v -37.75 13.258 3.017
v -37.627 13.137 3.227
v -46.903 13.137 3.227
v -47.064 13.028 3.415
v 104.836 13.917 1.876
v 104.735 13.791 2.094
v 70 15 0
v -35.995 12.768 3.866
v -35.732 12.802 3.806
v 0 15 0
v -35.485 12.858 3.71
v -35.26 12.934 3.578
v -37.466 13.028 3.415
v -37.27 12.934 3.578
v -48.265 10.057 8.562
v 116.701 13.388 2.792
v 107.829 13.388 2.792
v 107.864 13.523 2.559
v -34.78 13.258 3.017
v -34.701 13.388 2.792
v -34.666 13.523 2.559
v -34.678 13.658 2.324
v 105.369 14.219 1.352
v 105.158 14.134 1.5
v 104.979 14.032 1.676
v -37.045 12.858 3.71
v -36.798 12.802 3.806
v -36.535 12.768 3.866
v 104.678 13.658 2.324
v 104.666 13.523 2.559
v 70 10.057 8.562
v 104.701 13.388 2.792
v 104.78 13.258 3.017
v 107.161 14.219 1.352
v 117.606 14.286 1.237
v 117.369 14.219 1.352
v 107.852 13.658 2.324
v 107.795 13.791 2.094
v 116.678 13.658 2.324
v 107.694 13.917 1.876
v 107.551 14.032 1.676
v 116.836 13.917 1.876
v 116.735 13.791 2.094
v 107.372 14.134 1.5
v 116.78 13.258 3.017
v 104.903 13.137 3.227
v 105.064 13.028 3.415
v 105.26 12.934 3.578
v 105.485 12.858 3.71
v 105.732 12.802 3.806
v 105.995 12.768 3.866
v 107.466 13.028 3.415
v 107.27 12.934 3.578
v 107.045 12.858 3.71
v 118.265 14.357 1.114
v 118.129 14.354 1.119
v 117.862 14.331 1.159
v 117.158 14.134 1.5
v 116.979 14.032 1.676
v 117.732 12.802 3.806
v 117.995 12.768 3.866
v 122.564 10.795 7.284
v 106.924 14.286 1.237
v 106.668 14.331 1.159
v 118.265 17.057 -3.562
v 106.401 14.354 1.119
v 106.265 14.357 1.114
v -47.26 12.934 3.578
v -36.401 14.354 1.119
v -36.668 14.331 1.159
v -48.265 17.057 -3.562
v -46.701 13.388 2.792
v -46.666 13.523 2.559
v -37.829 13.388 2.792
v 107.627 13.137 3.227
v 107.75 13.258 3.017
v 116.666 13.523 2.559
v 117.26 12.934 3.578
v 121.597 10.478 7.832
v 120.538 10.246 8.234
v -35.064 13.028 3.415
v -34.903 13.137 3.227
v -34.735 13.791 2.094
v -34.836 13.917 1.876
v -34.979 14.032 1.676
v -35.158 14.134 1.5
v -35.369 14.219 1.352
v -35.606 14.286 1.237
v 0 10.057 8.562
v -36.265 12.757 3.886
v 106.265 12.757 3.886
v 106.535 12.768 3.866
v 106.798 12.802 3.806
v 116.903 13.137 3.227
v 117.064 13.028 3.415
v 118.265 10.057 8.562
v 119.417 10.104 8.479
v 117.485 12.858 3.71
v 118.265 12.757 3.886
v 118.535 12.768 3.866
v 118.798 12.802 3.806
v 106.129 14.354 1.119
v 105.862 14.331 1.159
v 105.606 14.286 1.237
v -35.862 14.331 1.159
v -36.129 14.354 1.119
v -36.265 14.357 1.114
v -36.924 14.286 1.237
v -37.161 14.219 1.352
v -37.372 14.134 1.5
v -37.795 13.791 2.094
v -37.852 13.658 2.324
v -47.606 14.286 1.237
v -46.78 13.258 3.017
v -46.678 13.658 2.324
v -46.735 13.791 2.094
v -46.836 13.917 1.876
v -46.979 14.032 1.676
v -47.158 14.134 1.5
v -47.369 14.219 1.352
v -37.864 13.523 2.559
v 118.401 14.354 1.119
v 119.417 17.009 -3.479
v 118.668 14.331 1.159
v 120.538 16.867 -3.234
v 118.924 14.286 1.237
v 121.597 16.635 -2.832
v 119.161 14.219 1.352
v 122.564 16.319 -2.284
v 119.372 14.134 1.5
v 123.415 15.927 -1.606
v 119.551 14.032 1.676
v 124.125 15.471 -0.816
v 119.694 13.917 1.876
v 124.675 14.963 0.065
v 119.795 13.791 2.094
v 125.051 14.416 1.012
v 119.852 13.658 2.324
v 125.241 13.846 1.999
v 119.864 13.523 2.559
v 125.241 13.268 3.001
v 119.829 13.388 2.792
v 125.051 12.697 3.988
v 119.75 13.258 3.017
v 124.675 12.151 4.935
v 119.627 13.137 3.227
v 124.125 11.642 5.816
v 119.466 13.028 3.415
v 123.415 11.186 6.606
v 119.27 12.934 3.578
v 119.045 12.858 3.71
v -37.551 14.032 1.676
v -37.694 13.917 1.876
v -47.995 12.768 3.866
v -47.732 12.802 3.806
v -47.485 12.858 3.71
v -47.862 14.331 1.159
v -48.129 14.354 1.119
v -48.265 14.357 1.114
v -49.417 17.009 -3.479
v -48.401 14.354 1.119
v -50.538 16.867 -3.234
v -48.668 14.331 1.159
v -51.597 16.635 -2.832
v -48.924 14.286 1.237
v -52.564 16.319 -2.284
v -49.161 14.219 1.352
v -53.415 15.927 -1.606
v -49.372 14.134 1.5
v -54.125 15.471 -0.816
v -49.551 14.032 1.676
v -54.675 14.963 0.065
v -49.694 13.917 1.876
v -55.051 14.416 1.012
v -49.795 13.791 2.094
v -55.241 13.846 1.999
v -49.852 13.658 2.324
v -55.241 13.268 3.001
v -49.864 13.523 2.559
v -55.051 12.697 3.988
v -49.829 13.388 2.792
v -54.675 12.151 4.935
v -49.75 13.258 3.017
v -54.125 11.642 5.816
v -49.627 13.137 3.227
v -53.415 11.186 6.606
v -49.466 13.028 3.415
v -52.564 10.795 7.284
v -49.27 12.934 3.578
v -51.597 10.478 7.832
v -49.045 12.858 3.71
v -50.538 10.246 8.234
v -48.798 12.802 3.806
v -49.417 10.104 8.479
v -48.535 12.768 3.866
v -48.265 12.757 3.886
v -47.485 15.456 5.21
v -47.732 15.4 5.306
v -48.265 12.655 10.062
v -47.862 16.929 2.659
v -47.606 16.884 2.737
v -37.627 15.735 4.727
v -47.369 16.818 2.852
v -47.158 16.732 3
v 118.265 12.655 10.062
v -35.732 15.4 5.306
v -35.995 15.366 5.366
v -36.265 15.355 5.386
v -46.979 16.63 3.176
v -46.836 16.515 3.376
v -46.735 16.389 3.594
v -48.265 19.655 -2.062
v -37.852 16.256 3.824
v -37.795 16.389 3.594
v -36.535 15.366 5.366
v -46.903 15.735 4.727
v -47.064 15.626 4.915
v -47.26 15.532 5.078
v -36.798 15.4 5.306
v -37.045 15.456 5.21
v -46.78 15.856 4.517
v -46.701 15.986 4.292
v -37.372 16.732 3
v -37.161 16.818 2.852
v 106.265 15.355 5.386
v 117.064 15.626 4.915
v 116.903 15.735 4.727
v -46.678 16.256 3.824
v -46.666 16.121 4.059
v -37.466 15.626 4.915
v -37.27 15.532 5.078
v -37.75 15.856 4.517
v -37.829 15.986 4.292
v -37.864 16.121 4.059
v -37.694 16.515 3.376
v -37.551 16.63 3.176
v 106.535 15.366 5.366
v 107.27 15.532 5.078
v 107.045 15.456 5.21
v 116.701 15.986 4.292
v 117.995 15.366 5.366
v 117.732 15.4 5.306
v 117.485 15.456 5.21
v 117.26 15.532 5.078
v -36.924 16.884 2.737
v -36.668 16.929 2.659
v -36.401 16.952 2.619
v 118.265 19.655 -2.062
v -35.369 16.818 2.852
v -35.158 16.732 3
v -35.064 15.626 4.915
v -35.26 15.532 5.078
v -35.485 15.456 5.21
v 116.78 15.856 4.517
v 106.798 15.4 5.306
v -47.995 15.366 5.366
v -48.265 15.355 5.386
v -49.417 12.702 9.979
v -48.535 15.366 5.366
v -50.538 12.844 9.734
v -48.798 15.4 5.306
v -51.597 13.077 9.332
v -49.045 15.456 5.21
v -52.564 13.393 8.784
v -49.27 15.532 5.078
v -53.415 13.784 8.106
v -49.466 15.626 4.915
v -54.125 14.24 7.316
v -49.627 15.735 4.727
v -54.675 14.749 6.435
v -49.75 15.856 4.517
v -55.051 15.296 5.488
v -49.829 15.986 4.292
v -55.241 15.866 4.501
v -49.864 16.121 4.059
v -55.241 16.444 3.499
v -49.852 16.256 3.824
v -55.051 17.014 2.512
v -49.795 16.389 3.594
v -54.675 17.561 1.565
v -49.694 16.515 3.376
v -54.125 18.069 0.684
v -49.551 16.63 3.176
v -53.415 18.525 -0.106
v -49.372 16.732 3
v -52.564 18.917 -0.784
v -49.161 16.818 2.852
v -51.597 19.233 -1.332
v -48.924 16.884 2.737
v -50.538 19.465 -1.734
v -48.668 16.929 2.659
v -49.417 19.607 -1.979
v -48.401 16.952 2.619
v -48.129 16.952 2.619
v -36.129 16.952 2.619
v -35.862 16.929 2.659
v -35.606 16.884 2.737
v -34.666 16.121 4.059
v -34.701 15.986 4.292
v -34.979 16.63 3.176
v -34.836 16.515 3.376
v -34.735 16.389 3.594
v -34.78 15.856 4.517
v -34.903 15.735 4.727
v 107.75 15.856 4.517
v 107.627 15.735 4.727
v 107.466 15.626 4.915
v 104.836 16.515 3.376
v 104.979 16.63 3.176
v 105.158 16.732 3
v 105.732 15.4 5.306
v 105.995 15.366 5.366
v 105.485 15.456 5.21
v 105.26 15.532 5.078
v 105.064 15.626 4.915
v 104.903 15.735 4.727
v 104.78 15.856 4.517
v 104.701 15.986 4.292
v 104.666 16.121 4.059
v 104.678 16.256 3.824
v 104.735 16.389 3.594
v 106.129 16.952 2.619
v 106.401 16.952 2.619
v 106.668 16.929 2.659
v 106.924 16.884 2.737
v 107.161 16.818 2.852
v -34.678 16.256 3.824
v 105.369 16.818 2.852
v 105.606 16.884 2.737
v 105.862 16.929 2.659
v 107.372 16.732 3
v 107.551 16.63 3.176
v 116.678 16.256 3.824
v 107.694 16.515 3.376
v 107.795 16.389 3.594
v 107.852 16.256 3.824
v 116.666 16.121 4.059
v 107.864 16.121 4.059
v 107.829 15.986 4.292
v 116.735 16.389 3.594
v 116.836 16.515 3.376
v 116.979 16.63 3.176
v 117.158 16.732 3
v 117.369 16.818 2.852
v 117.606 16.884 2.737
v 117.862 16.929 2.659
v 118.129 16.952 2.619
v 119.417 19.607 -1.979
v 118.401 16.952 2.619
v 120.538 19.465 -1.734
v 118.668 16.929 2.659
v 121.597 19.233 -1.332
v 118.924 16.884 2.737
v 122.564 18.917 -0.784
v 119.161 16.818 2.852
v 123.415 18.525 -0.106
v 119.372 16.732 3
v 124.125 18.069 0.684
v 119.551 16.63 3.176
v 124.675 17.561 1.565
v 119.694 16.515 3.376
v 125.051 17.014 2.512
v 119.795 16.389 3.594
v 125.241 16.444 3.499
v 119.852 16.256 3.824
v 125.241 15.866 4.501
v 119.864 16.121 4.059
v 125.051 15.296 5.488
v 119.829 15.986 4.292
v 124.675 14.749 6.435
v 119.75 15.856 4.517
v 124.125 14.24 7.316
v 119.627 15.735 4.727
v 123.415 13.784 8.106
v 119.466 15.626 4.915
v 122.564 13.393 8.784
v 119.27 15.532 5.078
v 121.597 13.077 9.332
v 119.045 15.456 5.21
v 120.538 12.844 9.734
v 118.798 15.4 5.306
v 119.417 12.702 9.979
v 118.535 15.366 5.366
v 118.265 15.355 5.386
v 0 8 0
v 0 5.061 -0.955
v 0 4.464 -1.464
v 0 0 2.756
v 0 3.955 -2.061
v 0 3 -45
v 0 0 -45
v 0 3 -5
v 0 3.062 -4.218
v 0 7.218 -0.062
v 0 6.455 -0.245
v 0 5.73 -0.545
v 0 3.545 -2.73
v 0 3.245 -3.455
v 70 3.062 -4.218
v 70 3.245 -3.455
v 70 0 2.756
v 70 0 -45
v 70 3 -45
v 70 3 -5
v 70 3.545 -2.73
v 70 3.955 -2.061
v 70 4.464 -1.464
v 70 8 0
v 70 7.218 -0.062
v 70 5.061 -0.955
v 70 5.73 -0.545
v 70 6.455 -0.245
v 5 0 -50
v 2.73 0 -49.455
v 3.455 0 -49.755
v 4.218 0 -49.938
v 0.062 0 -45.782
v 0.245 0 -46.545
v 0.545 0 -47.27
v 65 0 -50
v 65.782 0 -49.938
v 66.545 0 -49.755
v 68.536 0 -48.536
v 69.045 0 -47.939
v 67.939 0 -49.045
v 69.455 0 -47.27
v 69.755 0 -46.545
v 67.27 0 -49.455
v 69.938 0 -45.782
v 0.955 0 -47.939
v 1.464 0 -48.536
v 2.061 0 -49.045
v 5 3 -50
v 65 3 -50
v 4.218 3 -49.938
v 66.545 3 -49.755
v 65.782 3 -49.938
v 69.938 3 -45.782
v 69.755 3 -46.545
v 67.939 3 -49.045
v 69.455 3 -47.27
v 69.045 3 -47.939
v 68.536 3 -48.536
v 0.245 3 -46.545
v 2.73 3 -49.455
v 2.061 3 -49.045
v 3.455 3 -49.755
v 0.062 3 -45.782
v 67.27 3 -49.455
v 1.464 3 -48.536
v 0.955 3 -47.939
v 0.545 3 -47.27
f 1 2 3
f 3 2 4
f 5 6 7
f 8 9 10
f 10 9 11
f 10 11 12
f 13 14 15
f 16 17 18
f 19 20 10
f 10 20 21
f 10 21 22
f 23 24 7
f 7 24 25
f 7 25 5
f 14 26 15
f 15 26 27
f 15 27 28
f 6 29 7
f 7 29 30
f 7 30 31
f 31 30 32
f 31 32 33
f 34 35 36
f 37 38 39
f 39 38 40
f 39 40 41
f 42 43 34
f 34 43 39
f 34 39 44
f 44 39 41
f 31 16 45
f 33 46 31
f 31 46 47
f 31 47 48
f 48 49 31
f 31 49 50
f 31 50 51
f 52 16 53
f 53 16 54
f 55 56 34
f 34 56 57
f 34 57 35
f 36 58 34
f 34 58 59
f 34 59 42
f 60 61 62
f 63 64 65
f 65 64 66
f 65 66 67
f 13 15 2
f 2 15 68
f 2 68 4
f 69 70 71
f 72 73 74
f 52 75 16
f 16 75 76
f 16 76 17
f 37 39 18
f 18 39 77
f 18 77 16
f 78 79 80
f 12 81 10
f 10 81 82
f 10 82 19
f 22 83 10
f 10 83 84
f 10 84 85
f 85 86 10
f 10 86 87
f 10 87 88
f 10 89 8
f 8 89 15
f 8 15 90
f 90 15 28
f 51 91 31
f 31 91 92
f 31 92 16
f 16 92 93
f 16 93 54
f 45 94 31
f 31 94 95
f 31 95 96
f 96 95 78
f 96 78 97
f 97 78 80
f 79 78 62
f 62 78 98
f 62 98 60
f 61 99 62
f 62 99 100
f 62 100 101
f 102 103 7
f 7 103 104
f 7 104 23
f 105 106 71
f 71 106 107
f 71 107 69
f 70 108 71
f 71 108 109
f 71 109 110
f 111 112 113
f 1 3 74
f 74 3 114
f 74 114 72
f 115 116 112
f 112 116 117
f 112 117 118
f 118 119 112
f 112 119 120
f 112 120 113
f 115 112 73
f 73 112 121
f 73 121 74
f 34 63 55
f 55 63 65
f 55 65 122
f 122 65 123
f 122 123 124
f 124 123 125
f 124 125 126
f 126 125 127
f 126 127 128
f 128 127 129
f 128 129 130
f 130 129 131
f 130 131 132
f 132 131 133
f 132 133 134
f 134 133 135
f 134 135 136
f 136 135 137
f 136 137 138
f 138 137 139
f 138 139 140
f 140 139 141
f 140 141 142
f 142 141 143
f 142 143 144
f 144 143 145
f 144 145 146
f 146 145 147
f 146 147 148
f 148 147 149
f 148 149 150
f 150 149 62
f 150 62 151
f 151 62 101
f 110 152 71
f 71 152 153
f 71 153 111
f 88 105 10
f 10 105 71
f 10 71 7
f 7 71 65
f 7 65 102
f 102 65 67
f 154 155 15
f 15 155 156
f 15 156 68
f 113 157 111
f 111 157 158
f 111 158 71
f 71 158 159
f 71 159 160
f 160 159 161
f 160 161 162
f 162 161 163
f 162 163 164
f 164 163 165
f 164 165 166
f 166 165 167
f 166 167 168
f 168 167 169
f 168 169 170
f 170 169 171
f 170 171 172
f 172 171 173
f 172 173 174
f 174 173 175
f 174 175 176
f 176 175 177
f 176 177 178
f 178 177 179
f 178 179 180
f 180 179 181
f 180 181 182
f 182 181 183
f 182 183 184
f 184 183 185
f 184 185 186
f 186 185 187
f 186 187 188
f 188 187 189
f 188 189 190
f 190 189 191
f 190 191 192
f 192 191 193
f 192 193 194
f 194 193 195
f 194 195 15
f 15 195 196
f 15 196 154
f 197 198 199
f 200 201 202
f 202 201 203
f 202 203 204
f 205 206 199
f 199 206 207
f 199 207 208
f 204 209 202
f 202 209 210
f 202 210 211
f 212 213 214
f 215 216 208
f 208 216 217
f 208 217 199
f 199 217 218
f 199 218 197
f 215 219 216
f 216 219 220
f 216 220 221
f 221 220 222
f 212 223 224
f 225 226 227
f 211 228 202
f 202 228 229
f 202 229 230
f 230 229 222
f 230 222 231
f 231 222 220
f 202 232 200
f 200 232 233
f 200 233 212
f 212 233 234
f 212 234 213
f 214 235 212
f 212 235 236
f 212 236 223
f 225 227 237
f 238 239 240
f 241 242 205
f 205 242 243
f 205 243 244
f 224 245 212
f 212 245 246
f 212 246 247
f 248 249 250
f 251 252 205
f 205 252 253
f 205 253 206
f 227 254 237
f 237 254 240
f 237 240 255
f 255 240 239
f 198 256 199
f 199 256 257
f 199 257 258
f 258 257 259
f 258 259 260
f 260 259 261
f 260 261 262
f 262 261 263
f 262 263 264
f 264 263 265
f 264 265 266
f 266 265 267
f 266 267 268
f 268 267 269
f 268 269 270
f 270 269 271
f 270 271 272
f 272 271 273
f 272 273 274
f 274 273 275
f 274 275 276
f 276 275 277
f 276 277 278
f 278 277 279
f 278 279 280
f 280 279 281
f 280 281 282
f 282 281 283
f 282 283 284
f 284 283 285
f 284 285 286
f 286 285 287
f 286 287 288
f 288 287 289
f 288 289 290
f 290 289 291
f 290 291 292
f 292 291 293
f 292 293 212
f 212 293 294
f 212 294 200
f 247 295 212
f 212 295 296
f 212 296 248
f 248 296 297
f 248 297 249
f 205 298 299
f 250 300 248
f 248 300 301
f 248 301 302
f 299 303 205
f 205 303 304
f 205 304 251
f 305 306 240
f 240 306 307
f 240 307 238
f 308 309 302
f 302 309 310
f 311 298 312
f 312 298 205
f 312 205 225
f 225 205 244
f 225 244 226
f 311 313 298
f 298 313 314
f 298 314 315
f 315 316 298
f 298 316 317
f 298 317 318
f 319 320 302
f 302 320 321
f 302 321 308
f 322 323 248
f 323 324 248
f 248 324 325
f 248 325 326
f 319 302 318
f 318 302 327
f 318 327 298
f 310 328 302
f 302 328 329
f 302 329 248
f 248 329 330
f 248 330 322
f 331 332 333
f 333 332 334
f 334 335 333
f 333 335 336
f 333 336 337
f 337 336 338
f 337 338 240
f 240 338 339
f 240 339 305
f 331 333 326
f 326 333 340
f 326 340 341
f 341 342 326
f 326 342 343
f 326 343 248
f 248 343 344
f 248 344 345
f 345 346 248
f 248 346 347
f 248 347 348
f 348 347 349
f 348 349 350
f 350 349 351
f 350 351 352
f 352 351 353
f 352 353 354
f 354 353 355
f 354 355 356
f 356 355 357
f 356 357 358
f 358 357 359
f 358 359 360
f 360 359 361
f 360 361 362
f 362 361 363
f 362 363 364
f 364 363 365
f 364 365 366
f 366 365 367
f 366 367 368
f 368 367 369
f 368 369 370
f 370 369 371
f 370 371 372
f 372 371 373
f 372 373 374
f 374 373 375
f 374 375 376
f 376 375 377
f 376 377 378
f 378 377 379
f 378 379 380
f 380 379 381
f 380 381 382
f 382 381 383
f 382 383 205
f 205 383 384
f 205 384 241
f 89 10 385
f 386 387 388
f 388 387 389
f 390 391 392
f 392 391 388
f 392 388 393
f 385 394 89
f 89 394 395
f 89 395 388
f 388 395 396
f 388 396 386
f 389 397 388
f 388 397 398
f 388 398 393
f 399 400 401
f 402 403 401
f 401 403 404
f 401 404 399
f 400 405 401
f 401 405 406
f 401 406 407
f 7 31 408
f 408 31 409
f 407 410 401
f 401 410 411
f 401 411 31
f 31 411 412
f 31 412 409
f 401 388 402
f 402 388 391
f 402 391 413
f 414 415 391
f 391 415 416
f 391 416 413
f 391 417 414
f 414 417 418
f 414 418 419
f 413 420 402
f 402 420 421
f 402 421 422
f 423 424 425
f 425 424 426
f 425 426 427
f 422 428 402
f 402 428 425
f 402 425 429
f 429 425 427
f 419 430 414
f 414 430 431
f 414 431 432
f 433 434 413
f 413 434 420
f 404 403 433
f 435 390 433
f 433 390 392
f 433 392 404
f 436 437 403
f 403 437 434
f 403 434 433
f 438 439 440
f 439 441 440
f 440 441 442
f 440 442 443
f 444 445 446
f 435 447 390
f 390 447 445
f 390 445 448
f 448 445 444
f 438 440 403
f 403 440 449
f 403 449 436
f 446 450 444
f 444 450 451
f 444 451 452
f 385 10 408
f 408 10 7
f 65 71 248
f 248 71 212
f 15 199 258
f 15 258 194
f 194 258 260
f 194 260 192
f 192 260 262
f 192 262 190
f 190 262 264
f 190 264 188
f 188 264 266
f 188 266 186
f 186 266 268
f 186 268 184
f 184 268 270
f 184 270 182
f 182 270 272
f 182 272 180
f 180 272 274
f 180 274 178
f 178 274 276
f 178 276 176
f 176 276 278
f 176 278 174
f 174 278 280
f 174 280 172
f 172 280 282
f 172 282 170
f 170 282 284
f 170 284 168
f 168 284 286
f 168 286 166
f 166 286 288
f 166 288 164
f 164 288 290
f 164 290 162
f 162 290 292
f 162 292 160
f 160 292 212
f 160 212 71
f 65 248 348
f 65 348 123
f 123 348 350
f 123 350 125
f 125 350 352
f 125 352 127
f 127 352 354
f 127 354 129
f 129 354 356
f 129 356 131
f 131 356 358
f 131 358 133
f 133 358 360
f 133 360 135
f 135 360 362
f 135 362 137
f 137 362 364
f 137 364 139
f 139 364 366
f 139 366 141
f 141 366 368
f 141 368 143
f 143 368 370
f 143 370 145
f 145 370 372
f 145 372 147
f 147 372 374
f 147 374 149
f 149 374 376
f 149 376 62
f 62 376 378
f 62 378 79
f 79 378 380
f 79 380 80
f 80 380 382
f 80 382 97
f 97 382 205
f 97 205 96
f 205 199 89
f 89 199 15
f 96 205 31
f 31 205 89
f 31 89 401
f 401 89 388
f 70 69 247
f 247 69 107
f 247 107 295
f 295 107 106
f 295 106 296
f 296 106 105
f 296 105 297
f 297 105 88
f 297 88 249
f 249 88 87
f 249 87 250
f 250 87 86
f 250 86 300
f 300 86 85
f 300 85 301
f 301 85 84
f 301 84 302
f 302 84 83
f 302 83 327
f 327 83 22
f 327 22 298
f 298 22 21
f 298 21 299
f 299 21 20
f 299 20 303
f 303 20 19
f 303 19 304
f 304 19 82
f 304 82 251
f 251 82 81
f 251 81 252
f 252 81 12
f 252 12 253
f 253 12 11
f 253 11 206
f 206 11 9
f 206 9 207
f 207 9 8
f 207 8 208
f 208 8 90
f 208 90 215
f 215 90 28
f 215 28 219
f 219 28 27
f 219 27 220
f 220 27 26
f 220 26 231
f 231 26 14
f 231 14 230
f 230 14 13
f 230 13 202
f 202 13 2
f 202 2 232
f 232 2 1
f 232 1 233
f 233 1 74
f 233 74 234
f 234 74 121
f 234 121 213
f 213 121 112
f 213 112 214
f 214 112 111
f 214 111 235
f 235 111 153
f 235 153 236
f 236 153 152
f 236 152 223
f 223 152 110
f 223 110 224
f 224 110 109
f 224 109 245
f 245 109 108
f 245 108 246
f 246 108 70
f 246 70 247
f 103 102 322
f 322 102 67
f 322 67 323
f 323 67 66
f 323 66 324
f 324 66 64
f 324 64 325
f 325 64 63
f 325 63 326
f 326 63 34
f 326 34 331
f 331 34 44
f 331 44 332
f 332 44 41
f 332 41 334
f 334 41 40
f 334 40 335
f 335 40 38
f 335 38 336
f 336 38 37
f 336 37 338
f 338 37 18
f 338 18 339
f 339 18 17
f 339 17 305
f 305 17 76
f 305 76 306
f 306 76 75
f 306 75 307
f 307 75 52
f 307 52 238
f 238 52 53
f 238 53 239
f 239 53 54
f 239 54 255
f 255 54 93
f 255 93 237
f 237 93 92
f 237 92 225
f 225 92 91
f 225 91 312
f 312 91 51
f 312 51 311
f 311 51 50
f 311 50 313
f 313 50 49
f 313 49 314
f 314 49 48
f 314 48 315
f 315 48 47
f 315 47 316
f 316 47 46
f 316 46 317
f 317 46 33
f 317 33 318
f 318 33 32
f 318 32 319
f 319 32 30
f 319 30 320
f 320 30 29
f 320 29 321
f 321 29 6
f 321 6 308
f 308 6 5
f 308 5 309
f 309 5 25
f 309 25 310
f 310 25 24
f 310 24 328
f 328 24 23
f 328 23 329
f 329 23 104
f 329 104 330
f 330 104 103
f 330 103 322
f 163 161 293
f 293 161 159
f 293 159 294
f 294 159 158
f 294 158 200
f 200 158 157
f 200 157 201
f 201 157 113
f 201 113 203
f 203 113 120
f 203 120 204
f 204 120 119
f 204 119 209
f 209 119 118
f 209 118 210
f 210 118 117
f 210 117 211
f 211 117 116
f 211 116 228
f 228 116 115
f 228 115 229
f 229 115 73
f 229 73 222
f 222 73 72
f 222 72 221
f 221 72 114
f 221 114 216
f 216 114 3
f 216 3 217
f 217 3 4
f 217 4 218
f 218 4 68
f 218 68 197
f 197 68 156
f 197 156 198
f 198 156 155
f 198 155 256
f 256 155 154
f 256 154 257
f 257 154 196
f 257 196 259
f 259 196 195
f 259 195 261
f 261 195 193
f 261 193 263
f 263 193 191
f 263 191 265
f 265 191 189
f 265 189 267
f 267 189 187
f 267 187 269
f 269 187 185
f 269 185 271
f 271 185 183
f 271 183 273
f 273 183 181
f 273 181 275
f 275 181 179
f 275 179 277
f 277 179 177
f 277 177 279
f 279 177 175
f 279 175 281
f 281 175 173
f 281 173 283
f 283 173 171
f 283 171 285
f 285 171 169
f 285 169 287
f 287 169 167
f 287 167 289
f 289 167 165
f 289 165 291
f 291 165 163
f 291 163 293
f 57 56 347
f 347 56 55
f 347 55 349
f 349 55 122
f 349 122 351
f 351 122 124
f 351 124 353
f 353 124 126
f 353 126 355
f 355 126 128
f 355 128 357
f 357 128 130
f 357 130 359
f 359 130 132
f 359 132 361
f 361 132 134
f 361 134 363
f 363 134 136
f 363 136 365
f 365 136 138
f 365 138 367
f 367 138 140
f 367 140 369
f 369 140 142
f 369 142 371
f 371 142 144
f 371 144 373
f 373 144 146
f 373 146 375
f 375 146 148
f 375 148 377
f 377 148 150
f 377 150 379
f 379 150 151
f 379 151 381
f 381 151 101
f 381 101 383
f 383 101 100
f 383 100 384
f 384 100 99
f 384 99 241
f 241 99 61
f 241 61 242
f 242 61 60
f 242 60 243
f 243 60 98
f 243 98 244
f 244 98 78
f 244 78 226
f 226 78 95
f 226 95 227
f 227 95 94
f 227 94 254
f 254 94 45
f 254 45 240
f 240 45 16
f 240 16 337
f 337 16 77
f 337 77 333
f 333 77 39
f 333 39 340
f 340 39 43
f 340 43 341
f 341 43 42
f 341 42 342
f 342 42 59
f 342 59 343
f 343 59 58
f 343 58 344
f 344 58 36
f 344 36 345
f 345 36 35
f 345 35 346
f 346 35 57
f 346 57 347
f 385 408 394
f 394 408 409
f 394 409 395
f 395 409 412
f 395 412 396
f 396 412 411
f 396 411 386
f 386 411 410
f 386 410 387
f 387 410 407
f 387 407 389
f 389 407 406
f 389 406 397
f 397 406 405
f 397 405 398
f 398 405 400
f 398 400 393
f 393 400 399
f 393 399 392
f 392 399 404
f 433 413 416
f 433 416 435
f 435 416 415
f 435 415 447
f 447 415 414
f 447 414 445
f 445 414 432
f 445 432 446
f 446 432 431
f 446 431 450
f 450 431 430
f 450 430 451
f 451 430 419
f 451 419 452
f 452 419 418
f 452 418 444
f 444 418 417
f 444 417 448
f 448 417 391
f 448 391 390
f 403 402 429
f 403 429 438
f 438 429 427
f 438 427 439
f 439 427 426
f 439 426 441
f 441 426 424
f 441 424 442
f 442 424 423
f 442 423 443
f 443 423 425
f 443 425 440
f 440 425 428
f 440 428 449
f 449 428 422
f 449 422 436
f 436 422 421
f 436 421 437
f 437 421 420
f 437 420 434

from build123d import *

# Parameters (mm, degrees)
SKETCH_1_W          = 70
SKETCH_1_H          = 50
EXTRUDE_1_DEPTH     = 3
EXTRUDE_2_DEPTH     = 70
SKETCH_3_R          = 1.6
EXTRUDE_3_DEPTH     = 3
EXTRUDE_4_REACH     = 139.875
SKETCH_4_W          = 70
SKETCH_4_H          = 5.267949192
FILLET_1_R          = 5
SKETCH_5_W          = 70
SKETCH_5_H          = 28.866025404
CUT_EXTRUDE_1_DEPTH = 138.47436204
SKETCH_6_W          = 70
SKETCH_6_H          = 3
CUT_EXTRUDE_2_DEPTH = 133.365261865
FILLET_2_R          = 5


with BuildPart() as part:
    # 草图1 → 凸台-拉伸1 (new body)
    with BuildSketch(Plane(origin=(0, 0, 0), x_dir=(1, 0, 0), z_dir=(0, 1, 0))):
        with Locations((35, 25)):
            Rectangle(SKETCH_1_W, SKETCH_1_H)
    extrude(amount=EXTRUDE_1_DEPTH)

    # 草图2 → 凸台-拉伸2 (add)
    with BuildSketch(Plane.ZY):
        Polygon((0, 15), (-6.062177826, 18.5), (-4.562177826, 21.098076211), (4, 16.154700538), (4, 15), (4, 0), (0, 0), align=None)
    extrude(amount=-EXTRUDE_2_DEPTH)

    # 草图3 → 凸台-拉伸3 (add)
    with BuildSketch(Plane(origin=(0, 13.848076211, 7.995190528), x_dir=(1, 0, 0), z_dir=(0, 0.86602540378444, 0.49999999999999784))):
        with BuildLine():
            Line((-48.265, 11.613248654), (-36.265, 11.613248654))
            Line((-36.265, 11.613248654), (106.265, 11.613248654))
            Line((106.265, 11.613248654), (118.265, 11.613248654))
            ThreePointArc((118.265, 11.613248654), (125.265, 4.613248654), (118.265, -2.386751346))
            Line((118.265, -2.386751346), (106.265, -2.386751346))
            Line((106.265, -2.386751346), (-36.265, -2.386751346))
            Line((-36.265, -2.386751346), (-48.265, -2.386751346))
            ThreePointArc((-48.265, -2.386751346), (-55.265, 4.613248654), (-48.265, 11.613248654))
        make_face()
        with Locations(Location((-36.265, 4.613248654, 0), (0, 0, 270))):
            Circle(SKETCH_3_R, mode=Mode.SUBTRACT)
        with Locations(Location((106.265, 4.613248654, 0), (0, 0, 270))):
            Circle(SKETCH_3_R, mode=Mode.SUBTRACT)
        with Locations(Location((-48.265, 4.613248654, 0), (0, 0, 270))):
            Circle(SKETCH_3_R, mode=Mode.SUBTRACT)
        with Locations(Location((118.265, 4.613248654, 0), (0, 0, 270))):
            Circle(SKETCH_3_R, mode=Mode.SUBTRACT)
    extrude(amount=-EXTRUDE_3_DEPTH)

    # 凸台-拉伸4: up to this face of the body (flat: up to its plane)
    extrude_4_end = Plane(part.part.faces().sort_by_distance((35, 6.345299462, 4))[0])
    # 草图4 → 凸台-拉伸4 (add, up to the picked face)
    with BuildSketch(Plane(origin=(0, 11.25, 6.495190528), x_dir=(1, 0, 0), z_dir=(0, -0.8660254037844396, -0.4999999999999982)), mode=Mode.PRIVATE) as extrude_4_sk1:
        with Locations((35, -0.24722325)):
            Rectangle(SKETCH_4_W, SKETCH_4_H)
    extrude_4_tool1 = split(extrude(extrude_4_sk1.sketch, amount=EXTRUDE_4_REACH, mode=Mode.PRIVATE), bisect_by=extrude_4_end, keep=Keep.BOTH, mode=Mode.PRIVATE)
    add(extrude_4_tool1.solids().sort_by(Axis((35, 11.373612, 6.281089), (0, -0.8660254037844396, -0.4999999999999982)))[0])

    # 圆角1
    fillet_1_edges = [part.edges().sort_by_distance(p)[0] for p in [
        (35, 3, 0),
    ]]
    fillet(fillet_1_edges, radius=FILLET_1_R)

    # 草图5 → 切除-拉伸1 (cut, through all)
    with BuildSketch(Plane(origin=(0, -1.193375673, 2.066987298), x_dir=(1, 0, 0), z_dir=(-1.4881366732147052e-15, -0.49999999999999784, 0.8660254037844398))):
        with Locations((35, -10.566987298)):
            Rectangle(SKETCH_5_W, SKETCH_5_H)
    extrude(amount=CUT_EXTRUDE_1_DEPTH, mode=Mode.SUBTRACT)

    # 草图6 → 切除-拉伸2 (cut, through all)
    with BuildSketch(Plane(origin=(0, 5.806624327, -10.057368355), x_dir=(-1, 0, 0), z_dir=(0, 0.49999999999999784, -0.8660254037844398))):
        with Locations((-35, 14.490381057)):
            Rectangle(SKETCH_6_W, SKETCH_6_H)
    extrude(amount=CUT_EXTRUDE_2_DEPTH, mode=Mode.SUBTRACT)

    # 圆角2
    fillet_2_edges = [part.edges().sort_by_distance(p)[0] for p in [
        (0, 1.5, -50),
        (70, 1.5, -50),
    ]]
    fillet(fillet_2_edges, radius=FILLET_2_R)


solid = part.part
